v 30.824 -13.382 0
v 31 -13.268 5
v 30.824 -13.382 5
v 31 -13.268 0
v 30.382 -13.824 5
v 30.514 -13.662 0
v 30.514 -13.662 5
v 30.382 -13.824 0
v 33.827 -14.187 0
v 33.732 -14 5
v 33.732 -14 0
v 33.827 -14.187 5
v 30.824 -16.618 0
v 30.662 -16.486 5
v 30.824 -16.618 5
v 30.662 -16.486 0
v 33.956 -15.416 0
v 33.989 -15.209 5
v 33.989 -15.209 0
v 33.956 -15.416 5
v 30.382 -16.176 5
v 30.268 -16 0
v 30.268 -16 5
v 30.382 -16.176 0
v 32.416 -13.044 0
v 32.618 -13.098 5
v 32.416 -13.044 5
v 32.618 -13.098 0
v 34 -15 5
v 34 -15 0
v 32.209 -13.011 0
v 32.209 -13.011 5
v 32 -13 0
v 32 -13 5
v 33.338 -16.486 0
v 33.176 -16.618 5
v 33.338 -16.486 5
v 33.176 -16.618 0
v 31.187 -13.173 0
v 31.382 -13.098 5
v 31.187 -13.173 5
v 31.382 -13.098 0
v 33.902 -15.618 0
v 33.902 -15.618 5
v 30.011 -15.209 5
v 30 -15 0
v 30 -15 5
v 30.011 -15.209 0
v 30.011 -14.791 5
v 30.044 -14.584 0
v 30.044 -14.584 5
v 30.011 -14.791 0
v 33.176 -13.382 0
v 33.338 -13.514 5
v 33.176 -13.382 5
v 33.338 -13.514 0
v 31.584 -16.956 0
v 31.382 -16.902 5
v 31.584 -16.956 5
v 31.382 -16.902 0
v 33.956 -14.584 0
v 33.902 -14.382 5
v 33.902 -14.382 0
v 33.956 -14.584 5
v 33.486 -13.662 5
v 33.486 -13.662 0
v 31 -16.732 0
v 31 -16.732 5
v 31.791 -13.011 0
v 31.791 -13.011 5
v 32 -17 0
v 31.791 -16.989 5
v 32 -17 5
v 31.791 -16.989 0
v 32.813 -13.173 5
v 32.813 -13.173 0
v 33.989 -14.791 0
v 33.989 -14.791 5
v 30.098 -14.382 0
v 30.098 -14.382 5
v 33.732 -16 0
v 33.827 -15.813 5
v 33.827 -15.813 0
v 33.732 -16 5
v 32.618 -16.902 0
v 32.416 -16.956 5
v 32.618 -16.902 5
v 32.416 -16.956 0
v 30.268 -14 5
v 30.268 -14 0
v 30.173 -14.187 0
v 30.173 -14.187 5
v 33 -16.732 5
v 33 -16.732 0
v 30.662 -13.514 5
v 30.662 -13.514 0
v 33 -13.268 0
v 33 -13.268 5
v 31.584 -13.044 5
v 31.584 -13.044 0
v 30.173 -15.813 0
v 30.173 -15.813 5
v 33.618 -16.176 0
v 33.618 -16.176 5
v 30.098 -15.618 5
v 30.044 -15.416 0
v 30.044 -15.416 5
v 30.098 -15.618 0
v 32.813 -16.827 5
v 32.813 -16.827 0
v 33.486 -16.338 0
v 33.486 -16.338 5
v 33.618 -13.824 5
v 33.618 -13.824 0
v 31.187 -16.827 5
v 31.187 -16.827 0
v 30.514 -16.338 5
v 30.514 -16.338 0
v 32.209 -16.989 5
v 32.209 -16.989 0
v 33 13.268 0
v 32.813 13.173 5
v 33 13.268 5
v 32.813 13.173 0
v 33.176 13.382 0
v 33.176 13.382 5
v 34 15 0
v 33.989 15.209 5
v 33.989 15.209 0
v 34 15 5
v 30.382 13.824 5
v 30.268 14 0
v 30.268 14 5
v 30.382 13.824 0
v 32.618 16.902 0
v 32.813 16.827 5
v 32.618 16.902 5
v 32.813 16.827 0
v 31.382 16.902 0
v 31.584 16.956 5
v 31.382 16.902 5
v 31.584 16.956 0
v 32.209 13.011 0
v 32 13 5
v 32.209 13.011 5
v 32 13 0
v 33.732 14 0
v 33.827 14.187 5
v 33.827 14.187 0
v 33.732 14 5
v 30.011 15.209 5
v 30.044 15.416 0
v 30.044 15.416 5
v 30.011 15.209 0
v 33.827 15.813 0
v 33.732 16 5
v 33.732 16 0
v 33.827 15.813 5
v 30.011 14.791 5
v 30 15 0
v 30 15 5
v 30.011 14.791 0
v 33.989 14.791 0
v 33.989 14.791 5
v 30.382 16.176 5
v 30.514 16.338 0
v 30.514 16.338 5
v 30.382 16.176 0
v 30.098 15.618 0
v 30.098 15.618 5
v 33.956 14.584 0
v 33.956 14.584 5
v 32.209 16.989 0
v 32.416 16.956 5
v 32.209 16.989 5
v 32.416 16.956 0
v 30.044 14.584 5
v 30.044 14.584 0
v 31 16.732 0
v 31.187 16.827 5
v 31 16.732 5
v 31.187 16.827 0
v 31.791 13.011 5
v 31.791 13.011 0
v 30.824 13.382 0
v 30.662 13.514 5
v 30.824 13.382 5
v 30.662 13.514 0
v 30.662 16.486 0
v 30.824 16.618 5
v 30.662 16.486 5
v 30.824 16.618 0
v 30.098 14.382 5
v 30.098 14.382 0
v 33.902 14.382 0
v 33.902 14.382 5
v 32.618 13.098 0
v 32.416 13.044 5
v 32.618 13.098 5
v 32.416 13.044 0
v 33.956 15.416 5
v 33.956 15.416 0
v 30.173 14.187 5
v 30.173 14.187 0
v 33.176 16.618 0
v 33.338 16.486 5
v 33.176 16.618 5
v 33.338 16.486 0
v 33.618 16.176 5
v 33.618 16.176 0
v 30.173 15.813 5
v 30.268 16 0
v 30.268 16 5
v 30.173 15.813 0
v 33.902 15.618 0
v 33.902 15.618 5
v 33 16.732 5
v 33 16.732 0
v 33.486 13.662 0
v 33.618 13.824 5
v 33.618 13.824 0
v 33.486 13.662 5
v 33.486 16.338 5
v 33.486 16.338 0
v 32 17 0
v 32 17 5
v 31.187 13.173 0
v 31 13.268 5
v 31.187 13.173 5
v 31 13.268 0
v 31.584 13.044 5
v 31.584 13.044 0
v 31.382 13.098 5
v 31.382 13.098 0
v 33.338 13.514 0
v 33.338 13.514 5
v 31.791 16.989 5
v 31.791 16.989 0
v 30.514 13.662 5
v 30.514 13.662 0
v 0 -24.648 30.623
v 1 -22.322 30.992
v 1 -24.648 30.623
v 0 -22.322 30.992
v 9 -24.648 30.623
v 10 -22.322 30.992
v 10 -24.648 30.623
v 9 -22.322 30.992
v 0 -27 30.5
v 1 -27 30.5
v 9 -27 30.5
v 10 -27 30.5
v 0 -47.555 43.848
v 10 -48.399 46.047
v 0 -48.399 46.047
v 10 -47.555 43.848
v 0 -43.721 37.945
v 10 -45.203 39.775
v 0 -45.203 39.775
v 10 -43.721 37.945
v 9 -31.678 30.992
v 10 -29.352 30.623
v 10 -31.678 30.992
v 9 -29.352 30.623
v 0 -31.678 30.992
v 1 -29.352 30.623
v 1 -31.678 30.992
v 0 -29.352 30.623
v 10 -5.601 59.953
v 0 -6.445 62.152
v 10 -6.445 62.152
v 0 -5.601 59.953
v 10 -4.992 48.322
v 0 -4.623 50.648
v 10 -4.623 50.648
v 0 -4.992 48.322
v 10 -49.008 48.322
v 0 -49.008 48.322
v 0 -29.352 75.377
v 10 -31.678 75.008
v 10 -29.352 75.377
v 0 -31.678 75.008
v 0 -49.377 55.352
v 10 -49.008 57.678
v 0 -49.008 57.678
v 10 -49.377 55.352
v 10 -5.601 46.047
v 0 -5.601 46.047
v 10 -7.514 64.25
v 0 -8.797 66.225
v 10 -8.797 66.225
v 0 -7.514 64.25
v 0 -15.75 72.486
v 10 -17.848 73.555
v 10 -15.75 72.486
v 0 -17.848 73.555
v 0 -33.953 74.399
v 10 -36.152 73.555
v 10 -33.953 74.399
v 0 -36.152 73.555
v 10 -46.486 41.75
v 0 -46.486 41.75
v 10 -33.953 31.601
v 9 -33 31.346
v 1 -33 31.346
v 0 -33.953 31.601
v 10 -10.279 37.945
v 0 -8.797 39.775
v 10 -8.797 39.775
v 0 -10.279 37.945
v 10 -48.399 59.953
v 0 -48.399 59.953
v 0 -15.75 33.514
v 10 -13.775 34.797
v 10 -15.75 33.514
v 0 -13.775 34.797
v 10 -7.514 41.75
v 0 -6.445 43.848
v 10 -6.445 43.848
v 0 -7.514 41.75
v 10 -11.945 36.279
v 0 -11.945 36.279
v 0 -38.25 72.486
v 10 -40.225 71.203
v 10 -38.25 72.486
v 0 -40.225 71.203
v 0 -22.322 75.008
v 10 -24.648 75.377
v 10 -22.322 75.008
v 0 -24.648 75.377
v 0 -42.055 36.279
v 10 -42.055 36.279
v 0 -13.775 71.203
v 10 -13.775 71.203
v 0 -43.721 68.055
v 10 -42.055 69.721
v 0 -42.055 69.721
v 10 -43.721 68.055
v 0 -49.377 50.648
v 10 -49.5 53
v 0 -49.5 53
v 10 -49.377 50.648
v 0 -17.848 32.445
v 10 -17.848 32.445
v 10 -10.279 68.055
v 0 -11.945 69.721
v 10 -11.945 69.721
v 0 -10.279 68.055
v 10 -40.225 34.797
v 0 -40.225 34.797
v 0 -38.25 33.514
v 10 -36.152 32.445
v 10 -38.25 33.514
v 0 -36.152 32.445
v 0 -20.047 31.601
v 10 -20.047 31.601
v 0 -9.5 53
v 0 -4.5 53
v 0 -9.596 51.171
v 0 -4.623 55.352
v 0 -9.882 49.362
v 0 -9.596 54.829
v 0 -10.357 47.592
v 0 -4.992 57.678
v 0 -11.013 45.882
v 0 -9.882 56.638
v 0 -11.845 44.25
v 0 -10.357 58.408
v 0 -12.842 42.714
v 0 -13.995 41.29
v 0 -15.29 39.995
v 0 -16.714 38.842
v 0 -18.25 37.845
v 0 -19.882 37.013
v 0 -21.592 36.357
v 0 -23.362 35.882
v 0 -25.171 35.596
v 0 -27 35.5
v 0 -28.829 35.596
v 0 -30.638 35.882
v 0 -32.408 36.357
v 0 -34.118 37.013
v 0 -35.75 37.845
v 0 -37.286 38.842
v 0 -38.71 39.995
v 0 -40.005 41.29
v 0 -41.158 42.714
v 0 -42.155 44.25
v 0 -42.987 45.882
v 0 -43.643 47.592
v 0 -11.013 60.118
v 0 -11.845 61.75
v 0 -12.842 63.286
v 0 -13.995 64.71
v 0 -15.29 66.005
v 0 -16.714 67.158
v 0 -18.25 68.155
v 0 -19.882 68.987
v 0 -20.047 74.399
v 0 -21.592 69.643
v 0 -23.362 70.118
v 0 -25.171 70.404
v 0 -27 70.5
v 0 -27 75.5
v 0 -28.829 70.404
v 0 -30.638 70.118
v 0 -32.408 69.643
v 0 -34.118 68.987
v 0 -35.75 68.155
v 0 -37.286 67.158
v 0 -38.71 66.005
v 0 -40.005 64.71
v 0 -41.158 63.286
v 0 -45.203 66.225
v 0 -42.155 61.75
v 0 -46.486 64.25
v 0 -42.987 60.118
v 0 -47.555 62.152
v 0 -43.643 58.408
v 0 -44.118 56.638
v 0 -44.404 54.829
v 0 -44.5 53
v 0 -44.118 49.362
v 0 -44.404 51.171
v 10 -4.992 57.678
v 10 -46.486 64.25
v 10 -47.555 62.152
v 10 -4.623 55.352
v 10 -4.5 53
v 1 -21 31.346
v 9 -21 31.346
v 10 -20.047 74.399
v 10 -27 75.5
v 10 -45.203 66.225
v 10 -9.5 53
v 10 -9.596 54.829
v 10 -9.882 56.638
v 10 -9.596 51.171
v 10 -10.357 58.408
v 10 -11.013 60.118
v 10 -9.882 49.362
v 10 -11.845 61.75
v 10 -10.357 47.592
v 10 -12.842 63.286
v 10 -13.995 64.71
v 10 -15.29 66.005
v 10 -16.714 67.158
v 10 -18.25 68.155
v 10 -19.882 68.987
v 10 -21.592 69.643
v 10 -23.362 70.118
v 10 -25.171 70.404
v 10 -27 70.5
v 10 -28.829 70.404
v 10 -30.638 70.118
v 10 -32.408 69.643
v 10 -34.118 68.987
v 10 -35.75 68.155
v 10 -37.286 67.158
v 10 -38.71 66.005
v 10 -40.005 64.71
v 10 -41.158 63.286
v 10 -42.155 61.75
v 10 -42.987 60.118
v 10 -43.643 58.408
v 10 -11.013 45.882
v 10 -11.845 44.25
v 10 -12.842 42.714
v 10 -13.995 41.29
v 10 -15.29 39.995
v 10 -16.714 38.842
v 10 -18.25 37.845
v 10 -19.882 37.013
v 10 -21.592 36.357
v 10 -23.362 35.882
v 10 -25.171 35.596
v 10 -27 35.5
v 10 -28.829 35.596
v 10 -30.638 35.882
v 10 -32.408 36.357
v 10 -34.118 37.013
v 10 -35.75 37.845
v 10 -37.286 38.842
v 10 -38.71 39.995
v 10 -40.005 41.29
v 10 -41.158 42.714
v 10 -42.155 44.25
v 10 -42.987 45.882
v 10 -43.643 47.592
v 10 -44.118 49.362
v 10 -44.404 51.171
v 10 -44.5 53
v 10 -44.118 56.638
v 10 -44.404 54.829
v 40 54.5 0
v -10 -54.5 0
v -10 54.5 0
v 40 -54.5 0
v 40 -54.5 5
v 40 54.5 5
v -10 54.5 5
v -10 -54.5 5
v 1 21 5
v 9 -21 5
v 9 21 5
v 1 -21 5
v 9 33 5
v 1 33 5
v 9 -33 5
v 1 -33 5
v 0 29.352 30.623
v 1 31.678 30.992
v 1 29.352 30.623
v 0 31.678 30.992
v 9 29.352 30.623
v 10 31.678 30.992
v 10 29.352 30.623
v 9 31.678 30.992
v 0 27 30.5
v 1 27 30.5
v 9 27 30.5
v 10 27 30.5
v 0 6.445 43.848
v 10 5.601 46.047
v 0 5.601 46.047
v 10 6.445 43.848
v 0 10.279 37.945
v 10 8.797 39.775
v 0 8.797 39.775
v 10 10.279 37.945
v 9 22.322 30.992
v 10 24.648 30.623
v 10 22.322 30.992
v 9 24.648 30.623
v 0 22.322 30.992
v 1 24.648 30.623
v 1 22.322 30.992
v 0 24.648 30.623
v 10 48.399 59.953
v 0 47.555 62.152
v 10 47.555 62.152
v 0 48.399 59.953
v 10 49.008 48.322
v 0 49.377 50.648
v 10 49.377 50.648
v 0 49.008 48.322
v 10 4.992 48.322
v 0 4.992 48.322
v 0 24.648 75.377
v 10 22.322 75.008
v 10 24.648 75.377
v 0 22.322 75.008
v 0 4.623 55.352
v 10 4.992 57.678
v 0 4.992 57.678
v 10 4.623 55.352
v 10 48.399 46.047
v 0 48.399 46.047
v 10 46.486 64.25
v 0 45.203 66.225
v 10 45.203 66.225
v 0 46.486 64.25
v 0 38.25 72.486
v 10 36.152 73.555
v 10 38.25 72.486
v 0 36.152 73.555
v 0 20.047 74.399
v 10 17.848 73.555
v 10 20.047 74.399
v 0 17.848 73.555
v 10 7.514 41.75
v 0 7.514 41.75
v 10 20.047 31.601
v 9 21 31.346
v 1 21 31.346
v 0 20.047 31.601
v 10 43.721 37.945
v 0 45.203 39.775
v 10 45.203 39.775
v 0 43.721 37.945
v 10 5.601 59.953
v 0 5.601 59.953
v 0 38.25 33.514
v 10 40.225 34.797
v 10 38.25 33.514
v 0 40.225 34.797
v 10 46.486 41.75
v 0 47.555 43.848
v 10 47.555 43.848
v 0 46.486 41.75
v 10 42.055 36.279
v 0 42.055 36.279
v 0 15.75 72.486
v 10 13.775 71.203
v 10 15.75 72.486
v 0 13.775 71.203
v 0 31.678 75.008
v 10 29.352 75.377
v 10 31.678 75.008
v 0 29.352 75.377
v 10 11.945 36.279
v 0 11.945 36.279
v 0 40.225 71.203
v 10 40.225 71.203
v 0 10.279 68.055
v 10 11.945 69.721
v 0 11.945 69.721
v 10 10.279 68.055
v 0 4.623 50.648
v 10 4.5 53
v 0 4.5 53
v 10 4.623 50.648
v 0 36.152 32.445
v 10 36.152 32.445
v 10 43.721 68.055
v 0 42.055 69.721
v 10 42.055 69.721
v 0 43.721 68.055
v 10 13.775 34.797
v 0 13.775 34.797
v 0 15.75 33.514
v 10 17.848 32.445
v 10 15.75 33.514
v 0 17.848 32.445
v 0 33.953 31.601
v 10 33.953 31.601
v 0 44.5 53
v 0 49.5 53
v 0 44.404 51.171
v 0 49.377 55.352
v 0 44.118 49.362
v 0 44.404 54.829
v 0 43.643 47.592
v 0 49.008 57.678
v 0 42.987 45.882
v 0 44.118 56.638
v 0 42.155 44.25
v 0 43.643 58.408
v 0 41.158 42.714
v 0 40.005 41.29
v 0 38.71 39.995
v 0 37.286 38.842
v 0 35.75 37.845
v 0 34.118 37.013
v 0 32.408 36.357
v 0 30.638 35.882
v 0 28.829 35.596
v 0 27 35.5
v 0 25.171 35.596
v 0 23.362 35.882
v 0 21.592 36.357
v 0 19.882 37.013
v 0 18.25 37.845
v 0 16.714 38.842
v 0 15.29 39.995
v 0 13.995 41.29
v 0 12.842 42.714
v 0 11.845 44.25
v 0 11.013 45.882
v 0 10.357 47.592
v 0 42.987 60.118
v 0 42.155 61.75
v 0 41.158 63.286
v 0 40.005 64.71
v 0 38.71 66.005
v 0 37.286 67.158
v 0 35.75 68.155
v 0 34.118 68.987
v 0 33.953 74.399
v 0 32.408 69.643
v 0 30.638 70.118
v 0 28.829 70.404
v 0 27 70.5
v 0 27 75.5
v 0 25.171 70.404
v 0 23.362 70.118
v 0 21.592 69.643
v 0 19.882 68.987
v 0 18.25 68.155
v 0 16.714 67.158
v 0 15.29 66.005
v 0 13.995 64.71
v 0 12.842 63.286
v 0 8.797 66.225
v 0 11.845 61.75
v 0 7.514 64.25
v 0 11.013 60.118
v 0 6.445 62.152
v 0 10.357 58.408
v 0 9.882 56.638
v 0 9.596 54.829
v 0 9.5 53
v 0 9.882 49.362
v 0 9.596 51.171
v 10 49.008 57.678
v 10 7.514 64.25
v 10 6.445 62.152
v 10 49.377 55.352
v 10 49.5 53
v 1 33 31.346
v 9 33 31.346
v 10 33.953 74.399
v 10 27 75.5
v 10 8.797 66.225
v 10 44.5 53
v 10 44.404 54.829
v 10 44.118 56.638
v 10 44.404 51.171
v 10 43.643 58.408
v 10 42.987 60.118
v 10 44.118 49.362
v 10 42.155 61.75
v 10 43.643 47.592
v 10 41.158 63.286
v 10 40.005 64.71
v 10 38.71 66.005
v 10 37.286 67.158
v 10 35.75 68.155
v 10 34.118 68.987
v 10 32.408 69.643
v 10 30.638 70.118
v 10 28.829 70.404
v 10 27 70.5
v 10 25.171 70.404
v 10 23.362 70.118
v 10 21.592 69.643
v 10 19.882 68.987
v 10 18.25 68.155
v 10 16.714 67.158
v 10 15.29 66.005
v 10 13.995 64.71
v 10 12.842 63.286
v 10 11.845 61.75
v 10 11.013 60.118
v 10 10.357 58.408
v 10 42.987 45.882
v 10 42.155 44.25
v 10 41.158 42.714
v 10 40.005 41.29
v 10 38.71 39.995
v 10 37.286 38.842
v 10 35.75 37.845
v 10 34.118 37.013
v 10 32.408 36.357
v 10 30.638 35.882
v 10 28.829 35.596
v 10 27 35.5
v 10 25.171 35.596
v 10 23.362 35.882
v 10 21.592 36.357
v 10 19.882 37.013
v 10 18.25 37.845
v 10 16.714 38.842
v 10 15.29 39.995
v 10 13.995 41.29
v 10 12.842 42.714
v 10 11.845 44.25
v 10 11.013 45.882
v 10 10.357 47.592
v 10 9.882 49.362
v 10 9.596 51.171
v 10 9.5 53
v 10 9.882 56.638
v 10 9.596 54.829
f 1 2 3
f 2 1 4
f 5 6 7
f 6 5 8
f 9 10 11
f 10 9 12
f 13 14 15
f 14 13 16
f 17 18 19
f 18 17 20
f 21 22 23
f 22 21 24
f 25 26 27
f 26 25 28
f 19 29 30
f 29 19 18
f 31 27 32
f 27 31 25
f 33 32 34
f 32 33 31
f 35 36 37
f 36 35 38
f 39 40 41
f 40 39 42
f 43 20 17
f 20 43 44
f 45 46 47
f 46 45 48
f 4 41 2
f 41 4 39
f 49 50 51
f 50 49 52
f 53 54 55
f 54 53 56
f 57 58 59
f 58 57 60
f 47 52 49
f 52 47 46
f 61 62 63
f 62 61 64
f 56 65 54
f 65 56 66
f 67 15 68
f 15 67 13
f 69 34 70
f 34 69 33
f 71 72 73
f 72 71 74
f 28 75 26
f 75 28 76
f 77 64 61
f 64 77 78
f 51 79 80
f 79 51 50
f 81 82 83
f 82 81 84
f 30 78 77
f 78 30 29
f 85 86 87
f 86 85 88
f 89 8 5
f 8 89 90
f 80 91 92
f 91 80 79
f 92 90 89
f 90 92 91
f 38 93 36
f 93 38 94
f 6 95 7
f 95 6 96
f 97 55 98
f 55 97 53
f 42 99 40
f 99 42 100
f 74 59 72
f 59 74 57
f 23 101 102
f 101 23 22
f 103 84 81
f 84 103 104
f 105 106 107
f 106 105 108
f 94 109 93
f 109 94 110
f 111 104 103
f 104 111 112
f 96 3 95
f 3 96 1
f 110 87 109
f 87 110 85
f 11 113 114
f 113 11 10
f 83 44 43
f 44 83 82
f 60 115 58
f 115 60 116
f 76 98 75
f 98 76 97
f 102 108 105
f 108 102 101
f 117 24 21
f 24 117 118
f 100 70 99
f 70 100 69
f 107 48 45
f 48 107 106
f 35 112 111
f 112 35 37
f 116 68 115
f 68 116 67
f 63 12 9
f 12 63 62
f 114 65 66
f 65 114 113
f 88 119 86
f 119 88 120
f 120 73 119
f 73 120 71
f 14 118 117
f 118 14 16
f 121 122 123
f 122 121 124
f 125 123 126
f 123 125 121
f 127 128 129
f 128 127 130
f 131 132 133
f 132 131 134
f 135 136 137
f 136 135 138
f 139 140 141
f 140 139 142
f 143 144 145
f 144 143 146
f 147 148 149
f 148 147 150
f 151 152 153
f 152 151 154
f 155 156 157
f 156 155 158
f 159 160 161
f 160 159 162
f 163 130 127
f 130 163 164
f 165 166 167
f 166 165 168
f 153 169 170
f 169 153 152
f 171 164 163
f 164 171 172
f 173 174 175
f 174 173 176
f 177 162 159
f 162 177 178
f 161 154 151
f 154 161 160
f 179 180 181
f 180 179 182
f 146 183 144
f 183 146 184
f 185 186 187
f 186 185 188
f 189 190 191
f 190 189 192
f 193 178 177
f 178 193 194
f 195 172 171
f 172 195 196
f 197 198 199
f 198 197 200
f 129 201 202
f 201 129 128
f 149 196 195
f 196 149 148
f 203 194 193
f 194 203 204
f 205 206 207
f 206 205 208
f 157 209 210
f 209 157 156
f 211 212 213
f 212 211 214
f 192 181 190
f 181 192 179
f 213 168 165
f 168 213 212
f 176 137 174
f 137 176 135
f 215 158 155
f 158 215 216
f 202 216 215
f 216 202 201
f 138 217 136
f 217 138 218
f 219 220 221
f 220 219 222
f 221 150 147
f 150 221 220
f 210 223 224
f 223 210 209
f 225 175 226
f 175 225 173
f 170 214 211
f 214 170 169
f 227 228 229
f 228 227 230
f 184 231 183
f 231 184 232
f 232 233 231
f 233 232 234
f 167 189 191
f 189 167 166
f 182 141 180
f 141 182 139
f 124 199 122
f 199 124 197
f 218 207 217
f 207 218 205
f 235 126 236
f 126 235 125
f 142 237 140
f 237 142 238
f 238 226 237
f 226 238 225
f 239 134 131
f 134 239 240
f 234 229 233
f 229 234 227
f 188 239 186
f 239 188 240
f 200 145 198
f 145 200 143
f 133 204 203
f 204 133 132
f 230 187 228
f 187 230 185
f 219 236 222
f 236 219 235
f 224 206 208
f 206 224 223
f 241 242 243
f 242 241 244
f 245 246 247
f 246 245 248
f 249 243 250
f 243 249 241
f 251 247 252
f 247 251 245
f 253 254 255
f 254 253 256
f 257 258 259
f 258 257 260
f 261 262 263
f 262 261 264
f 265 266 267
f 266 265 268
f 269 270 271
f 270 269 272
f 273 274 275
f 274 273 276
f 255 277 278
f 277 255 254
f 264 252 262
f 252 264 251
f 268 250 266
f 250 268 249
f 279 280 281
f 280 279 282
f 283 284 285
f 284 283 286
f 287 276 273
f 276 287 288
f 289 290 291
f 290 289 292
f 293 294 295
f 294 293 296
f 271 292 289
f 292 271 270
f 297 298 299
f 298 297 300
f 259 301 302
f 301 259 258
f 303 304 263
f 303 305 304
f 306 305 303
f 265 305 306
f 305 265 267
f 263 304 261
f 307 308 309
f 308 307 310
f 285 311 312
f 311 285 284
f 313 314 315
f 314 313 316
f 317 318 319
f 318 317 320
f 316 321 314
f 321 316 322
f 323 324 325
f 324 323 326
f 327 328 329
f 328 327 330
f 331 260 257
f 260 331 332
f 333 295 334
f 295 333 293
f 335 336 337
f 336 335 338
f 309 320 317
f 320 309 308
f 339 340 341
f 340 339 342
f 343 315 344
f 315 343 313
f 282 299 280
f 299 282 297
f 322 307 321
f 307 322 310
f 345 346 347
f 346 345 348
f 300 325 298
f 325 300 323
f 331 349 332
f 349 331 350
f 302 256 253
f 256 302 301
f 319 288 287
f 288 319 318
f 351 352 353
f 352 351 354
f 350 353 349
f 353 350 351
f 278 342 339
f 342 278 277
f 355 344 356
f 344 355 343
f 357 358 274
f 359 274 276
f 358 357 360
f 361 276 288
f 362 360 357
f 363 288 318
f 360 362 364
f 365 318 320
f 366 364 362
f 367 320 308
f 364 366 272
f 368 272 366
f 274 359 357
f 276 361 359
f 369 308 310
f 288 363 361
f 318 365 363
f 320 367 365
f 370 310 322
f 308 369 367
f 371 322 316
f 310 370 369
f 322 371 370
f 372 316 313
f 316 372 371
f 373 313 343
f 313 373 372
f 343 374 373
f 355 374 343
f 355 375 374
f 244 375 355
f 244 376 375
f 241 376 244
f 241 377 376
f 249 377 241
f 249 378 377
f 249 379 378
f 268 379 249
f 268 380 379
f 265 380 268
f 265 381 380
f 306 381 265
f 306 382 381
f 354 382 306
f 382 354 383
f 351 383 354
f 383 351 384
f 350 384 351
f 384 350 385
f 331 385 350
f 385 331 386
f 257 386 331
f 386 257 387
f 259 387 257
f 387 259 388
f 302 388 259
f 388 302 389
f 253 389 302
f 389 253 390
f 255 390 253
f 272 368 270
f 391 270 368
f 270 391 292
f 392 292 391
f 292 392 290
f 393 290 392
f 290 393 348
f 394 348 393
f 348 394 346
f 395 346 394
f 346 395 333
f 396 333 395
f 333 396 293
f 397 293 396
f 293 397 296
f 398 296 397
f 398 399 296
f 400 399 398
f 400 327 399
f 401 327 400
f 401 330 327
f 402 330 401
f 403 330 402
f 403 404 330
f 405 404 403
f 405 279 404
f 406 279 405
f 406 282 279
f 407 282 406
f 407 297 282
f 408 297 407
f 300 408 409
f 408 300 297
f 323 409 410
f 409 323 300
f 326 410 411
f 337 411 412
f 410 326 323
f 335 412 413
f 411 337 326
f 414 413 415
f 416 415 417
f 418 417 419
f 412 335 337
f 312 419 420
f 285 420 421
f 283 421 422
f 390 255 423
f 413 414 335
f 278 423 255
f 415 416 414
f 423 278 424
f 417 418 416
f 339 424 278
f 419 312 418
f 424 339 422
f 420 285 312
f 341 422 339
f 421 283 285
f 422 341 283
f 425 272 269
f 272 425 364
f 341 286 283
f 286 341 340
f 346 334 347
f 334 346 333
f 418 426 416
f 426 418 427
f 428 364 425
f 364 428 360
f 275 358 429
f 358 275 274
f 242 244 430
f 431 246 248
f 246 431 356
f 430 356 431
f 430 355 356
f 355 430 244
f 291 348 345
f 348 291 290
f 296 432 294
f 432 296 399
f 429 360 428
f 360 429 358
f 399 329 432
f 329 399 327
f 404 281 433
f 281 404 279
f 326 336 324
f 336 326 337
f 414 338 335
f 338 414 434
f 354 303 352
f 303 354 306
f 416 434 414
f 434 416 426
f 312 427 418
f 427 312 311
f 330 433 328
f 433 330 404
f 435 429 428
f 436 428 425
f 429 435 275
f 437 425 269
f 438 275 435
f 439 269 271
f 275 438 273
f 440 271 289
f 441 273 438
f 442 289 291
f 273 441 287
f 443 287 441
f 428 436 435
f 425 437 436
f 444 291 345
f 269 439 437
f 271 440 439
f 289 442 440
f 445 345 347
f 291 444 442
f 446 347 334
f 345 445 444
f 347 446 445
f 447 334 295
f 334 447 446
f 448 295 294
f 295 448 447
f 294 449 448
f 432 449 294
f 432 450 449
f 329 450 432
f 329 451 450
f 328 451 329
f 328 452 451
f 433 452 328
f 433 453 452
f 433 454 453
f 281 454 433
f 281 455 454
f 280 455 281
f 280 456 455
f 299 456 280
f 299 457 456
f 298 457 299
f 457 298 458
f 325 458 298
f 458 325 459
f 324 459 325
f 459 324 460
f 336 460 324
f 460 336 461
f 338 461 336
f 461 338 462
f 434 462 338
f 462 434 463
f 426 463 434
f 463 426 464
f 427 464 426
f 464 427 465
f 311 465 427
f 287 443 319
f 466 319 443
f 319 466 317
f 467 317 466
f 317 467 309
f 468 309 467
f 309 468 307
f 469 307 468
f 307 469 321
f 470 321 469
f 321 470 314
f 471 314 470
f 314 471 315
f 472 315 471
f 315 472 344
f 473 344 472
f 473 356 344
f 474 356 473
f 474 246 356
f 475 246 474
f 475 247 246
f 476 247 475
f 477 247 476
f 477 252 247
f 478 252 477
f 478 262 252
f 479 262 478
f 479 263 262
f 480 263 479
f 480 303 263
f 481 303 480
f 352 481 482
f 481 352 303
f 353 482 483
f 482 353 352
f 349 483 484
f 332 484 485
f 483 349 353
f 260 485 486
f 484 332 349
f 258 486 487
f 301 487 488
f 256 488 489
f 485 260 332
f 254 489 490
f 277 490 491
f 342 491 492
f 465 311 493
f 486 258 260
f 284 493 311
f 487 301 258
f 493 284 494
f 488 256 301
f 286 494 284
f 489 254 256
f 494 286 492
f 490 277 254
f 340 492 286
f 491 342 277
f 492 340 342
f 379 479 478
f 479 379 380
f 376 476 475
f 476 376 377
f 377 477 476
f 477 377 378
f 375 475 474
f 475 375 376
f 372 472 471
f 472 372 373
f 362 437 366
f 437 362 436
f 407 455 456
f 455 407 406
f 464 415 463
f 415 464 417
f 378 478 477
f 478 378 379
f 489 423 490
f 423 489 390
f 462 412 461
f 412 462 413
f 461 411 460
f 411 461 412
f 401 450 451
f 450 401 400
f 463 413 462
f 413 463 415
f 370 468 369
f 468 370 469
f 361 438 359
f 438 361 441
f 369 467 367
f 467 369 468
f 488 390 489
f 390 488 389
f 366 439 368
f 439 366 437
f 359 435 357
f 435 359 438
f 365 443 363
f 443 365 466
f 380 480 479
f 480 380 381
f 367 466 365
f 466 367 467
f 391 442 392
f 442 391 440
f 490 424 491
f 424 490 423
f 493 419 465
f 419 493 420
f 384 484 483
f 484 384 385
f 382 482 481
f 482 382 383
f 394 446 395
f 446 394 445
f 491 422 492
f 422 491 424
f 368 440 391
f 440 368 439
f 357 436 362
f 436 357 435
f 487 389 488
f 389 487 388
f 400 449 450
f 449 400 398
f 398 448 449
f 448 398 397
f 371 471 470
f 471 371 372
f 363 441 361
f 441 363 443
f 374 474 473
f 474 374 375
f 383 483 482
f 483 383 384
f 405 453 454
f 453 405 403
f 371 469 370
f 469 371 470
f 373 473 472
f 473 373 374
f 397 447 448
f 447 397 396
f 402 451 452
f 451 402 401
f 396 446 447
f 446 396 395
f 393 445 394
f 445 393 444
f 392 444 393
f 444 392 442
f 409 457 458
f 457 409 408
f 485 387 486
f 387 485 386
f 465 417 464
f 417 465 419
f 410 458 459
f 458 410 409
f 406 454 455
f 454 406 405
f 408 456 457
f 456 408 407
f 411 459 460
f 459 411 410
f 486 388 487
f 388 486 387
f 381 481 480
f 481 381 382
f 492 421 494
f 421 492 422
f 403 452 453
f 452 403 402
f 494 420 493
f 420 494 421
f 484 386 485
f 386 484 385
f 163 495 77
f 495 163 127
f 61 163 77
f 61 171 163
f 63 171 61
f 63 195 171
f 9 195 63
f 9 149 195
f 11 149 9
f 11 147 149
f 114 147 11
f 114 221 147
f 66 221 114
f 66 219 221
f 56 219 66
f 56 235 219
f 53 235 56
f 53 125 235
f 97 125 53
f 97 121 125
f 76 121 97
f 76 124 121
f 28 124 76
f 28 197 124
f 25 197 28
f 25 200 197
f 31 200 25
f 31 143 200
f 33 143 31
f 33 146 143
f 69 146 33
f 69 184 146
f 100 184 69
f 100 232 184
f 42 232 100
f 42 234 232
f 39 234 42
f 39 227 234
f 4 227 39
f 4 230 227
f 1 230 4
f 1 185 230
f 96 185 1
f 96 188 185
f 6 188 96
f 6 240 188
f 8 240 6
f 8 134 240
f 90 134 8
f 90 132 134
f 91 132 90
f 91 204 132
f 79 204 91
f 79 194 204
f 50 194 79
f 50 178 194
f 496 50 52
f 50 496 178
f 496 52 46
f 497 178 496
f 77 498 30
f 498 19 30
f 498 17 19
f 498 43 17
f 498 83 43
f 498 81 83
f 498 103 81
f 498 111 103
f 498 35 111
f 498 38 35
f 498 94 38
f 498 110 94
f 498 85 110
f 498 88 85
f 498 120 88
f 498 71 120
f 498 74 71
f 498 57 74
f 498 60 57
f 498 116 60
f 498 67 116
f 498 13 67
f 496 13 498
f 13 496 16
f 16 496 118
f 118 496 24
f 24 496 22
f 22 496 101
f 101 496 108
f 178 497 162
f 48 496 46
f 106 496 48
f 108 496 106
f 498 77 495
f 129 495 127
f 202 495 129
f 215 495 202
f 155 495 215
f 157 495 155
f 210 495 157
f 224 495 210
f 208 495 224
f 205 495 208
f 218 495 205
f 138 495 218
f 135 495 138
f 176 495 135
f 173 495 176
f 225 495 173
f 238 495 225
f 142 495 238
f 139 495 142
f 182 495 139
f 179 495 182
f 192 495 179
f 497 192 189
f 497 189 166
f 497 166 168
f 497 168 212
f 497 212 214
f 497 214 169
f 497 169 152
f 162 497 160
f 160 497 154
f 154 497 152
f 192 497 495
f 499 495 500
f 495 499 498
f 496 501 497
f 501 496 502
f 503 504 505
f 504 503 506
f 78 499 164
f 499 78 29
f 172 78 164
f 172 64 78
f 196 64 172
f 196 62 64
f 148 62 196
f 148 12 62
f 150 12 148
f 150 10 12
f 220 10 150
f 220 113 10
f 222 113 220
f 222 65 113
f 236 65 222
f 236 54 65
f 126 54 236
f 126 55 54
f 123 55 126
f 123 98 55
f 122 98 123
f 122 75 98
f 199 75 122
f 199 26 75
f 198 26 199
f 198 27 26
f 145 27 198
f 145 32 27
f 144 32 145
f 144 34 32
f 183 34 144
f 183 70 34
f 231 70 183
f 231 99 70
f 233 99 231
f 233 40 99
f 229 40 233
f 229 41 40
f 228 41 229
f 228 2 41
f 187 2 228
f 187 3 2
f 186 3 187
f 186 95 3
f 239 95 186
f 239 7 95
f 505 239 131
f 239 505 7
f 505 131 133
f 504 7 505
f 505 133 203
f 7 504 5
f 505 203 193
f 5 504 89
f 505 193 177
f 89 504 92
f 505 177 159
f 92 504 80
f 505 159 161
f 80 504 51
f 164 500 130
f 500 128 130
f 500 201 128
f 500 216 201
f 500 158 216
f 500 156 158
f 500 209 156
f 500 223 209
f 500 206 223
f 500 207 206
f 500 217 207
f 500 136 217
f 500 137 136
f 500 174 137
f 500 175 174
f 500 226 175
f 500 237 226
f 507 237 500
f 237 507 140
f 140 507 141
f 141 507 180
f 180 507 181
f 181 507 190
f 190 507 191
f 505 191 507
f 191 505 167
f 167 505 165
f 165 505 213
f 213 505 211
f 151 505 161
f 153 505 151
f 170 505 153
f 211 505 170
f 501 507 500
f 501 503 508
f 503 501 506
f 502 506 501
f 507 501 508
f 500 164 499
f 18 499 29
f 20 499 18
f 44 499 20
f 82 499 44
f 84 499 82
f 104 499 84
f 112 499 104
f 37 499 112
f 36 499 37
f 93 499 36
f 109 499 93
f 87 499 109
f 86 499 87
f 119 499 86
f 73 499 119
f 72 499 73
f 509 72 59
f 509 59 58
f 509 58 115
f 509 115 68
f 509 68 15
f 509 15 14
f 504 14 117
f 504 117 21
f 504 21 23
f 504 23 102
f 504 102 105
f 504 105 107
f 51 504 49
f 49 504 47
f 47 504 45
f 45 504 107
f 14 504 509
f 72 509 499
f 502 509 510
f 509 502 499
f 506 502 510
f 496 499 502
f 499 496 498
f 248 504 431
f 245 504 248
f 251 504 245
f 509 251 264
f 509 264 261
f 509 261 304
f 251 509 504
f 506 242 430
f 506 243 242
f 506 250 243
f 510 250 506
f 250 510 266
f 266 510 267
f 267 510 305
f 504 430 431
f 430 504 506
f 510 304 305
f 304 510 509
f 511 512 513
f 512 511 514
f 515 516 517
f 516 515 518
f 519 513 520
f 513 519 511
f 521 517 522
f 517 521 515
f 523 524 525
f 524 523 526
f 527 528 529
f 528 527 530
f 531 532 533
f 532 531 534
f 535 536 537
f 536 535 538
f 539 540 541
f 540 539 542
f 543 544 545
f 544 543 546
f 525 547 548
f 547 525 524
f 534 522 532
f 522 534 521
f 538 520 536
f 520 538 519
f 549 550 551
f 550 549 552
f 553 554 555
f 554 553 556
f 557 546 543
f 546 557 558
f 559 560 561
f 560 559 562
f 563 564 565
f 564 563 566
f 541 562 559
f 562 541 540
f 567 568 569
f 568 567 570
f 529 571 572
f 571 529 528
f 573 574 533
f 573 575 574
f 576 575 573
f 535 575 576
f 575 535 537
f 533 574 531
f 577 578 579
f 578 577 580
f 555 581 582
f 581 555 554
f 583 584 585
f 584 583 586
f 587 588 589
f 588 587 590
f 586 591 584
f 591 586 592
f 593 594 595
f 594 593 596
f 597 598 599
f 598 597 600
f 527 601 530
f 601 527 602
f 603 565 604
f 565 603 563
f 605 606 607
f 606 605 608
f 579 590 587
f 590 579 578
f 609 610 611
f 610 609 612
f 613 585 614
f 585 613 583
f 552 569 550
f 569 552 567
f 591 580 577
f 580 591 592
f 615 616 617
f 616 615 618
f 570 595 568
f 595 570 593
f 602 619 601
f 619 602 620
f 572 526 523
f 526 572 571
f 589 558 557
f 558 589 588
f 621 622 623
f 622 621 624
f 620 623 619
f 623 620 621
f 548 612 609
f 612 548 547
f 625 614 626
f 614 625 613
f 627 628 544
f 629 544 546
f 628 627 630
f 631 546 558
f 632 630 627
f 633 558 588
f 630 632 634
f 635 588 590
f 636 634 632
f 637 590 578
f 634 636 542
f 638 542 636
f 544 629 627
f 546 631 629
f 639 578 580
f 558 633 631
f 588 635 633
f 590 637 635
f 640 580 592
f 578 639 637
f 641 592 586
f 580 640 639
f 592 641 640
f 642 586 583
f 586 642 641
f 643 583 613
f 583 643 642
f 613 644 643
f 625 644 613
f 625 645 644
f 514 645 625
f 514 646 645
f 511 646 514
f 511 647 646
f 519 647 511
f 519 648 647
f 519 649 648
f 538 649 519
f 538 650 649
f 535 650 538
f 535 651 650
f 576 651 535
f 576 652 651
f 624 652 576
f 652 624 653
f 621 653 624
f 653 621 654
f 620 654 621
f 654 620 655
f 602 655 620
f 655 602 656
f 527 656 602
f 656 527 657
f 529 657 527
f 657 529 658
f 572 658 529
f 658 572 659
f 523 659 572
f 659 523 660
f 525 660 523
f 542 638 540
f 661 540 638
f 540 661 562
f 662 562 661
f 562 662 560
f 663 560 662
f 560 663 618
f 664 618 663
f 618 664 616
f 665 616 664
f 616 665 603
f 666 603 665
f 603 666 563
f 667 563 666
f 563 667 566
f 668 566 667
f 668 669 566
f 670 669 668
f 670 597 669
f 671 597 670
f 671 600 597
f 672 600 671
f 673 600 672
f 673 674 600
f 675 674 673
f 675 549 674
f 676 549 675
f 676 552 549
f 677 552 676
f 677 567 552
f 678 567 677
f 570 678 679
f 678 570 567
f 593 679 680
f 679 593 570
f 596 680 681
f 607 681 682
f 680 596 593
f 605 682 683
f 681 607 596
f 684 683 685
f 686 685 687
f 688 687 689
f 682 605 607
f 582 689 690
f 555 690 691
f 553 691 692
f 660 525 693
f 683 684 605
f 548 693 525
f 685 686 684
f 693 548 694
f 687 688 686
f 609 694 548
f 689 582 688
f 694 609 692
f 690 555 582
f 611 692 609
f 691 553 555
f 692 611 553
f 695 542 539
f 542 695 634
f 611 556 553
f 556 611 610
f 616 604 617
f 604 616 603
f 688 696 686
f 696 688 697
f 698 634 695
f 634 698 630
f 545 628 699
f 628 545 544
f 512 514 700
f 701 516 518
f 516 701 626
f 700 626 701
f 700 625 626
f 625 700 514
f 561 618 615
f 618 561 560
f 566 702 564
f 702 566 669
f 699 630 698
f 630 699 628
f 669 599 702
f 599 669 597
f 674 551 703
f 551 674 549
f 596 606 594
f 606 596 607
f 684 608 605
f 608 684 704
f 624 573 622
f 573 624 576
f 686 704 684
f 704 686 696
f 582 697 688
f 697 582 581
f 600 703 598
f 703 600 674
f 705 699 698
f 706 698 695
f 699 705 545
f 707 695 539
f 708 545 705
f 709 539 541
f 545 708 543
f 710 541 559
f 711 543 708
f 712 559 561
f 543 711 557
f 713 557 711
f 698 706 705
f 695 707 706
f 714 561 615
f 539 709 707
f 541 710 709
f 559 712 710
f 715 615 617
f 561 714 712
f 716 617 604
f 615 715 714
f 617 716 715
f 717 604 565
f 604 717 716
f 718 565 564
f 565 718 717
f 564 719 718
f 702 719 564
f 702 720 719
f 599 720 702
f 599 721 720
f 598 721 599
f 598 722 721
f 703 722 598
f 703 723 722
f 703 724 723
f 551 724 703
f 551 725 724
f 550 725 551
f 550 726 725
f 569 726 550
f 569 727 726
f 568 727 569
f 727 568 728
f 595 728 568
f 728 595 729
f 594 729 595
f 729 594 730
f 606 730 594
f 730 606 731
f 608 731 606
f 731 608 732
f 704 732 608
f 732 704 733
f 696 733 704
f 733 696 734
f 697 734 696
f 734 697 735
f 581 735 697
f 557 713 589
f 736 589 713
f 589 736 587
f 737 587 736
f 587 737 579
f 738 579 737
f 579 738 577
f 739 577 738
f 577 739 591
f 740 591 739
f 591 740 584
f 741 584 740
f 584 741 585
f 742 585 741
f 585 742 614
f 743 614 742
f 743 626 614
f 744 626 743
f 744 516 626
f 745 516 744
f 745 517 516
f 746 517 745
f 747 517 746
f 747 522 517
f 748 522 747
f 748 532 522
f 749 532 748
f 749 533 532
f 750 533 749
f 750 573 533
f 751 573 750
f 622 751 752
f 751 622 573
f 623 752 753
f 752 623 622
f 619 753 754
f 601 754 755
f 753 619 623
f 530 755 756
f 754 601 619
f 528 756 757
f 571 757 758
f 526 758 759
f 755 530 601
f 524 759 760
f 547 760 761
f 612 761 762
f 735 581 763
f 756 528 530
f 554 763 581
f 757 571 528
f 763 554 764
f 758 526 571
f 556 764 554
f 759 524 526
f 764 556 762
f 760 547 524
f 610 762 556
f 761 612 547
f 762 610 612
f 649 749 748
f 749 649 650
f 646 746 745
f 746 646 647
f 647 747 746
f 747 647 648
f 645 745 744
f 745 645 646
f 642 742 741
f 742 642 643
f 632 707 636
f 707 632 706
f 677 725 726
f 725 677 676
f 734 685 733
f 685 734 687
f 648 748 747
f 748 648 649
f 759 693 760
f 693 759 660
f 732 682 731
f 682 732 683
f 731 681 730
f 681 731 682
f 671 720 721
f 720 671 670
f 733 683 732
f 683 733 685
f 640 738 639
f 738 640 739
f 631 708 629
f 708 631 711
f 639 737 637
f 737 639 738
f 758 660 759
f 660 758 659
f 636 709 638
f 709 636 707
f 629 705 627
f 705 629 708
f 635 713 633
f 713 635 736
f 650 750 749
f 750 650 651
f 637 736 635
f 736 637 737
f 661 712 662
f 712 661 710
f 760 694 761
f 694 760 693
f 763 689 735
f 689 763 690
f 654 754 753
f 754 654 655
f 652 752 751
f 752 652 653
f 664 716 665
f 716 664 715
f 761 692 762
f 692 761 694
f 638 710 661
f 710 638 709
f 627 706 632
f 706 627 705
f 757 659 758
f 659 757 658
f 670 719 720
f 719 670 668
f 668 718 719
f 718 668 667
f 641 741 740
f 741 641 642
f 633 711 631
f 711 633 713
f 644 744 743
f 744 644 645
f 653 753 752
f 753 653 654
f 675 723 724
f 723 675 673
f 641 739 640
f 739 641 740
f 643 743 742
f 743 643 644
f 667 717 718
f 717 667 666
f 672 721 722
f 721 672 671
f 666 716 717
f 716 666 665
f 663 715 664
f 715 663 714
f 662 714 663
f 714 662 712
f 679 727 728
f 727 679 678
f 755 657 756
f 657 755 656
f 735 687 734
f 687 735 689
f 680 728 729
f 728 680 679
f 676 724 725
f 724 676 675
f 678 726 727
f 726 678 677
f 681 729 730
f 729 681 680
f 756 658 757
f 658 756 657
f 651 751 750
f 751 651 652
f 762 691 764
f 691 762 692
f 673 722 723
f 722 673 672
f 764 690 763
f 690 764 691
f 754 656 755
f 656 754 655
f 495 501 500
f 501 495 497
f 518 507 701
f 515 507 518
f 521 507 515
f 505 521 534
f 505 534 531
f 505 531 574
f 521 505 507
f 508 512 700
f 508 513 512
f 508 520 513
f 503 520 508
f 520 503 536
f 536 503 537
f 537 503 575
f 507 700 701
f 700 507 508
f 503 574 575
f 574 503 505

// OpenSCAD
$fn = 60;

rotate([0, 90, 0])
difference() {
    // --- Two mirrored 'single' modules ---
    for (y = [-27, 27])
        translate([0, y, 0]) single();

    // --- Two side holes (cylinders) ---
    for (y = [-15, 15])
        translate([0, y, 32])
            rotate([0, 90, 0])
                cylinder(d = 4, h = 20, center = true);
}

module single() {
    difference() {
        union() {
            // Main block
            translate([-2.5, 0, 15])
                cube([5, 55, 50], center = true);

            // Connector block
            translate([-34, -6, 1])
                cube([34, 12, 8]);

            // Front ring (hollow cylinder)
            translate([-53, 0, 0])  // -34 - 19 = -53
                difference() {
                    cylinder(d = 45, h = 10);
                    cylinder(d = 35, h = 10);
                }
        }
    }
}
